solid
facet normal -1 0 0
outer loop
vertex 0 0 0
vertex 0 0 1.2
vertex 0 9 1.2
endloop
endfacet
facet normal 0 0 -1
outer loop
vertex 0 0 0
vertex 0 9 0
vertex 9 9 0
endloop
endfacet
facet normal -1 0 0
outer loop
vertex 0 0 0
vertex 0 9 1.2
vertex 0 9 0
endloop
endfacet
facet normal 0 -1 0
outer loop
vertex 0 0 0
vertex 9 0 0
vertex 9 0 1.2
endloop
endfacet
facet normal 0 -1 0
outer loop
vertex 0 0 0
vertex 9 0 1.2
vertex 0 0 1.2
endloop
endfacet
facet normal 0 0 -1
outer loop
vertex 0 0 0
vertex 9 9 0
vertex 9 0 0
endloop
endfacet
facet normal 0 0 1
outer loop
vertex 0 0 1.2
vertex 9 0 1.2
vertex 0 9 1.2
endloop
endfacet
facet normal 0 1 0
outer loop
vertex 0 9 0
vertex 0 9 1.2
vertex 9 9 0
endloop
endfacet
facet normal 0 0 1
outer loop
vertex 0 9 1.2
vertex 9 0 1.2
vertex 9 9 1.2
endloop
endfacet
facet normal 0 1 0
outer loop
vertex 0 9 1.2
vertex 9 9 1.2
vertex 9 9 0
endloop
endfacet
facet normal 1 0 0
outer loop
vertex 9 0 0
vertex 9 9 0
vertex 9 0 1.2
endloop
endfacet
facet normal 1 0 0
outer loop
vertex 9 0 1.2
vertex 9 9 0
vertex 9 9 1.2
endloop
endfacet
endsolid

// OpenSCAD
/* Warning, this is a very basic generator with a lot of approximation 
input data : [TFBGA, HJB, 9x9x1.2mm, 100, , D, C04-21529D]
generated by com.zoubworld.electronics.cad.model3d.Basic
Date : Sun Feb 15 10:50:49 CET 2026
*/

//body
color("black")
translate([0,0,0])
cube([9.0,9.0,1.2], center=false);
